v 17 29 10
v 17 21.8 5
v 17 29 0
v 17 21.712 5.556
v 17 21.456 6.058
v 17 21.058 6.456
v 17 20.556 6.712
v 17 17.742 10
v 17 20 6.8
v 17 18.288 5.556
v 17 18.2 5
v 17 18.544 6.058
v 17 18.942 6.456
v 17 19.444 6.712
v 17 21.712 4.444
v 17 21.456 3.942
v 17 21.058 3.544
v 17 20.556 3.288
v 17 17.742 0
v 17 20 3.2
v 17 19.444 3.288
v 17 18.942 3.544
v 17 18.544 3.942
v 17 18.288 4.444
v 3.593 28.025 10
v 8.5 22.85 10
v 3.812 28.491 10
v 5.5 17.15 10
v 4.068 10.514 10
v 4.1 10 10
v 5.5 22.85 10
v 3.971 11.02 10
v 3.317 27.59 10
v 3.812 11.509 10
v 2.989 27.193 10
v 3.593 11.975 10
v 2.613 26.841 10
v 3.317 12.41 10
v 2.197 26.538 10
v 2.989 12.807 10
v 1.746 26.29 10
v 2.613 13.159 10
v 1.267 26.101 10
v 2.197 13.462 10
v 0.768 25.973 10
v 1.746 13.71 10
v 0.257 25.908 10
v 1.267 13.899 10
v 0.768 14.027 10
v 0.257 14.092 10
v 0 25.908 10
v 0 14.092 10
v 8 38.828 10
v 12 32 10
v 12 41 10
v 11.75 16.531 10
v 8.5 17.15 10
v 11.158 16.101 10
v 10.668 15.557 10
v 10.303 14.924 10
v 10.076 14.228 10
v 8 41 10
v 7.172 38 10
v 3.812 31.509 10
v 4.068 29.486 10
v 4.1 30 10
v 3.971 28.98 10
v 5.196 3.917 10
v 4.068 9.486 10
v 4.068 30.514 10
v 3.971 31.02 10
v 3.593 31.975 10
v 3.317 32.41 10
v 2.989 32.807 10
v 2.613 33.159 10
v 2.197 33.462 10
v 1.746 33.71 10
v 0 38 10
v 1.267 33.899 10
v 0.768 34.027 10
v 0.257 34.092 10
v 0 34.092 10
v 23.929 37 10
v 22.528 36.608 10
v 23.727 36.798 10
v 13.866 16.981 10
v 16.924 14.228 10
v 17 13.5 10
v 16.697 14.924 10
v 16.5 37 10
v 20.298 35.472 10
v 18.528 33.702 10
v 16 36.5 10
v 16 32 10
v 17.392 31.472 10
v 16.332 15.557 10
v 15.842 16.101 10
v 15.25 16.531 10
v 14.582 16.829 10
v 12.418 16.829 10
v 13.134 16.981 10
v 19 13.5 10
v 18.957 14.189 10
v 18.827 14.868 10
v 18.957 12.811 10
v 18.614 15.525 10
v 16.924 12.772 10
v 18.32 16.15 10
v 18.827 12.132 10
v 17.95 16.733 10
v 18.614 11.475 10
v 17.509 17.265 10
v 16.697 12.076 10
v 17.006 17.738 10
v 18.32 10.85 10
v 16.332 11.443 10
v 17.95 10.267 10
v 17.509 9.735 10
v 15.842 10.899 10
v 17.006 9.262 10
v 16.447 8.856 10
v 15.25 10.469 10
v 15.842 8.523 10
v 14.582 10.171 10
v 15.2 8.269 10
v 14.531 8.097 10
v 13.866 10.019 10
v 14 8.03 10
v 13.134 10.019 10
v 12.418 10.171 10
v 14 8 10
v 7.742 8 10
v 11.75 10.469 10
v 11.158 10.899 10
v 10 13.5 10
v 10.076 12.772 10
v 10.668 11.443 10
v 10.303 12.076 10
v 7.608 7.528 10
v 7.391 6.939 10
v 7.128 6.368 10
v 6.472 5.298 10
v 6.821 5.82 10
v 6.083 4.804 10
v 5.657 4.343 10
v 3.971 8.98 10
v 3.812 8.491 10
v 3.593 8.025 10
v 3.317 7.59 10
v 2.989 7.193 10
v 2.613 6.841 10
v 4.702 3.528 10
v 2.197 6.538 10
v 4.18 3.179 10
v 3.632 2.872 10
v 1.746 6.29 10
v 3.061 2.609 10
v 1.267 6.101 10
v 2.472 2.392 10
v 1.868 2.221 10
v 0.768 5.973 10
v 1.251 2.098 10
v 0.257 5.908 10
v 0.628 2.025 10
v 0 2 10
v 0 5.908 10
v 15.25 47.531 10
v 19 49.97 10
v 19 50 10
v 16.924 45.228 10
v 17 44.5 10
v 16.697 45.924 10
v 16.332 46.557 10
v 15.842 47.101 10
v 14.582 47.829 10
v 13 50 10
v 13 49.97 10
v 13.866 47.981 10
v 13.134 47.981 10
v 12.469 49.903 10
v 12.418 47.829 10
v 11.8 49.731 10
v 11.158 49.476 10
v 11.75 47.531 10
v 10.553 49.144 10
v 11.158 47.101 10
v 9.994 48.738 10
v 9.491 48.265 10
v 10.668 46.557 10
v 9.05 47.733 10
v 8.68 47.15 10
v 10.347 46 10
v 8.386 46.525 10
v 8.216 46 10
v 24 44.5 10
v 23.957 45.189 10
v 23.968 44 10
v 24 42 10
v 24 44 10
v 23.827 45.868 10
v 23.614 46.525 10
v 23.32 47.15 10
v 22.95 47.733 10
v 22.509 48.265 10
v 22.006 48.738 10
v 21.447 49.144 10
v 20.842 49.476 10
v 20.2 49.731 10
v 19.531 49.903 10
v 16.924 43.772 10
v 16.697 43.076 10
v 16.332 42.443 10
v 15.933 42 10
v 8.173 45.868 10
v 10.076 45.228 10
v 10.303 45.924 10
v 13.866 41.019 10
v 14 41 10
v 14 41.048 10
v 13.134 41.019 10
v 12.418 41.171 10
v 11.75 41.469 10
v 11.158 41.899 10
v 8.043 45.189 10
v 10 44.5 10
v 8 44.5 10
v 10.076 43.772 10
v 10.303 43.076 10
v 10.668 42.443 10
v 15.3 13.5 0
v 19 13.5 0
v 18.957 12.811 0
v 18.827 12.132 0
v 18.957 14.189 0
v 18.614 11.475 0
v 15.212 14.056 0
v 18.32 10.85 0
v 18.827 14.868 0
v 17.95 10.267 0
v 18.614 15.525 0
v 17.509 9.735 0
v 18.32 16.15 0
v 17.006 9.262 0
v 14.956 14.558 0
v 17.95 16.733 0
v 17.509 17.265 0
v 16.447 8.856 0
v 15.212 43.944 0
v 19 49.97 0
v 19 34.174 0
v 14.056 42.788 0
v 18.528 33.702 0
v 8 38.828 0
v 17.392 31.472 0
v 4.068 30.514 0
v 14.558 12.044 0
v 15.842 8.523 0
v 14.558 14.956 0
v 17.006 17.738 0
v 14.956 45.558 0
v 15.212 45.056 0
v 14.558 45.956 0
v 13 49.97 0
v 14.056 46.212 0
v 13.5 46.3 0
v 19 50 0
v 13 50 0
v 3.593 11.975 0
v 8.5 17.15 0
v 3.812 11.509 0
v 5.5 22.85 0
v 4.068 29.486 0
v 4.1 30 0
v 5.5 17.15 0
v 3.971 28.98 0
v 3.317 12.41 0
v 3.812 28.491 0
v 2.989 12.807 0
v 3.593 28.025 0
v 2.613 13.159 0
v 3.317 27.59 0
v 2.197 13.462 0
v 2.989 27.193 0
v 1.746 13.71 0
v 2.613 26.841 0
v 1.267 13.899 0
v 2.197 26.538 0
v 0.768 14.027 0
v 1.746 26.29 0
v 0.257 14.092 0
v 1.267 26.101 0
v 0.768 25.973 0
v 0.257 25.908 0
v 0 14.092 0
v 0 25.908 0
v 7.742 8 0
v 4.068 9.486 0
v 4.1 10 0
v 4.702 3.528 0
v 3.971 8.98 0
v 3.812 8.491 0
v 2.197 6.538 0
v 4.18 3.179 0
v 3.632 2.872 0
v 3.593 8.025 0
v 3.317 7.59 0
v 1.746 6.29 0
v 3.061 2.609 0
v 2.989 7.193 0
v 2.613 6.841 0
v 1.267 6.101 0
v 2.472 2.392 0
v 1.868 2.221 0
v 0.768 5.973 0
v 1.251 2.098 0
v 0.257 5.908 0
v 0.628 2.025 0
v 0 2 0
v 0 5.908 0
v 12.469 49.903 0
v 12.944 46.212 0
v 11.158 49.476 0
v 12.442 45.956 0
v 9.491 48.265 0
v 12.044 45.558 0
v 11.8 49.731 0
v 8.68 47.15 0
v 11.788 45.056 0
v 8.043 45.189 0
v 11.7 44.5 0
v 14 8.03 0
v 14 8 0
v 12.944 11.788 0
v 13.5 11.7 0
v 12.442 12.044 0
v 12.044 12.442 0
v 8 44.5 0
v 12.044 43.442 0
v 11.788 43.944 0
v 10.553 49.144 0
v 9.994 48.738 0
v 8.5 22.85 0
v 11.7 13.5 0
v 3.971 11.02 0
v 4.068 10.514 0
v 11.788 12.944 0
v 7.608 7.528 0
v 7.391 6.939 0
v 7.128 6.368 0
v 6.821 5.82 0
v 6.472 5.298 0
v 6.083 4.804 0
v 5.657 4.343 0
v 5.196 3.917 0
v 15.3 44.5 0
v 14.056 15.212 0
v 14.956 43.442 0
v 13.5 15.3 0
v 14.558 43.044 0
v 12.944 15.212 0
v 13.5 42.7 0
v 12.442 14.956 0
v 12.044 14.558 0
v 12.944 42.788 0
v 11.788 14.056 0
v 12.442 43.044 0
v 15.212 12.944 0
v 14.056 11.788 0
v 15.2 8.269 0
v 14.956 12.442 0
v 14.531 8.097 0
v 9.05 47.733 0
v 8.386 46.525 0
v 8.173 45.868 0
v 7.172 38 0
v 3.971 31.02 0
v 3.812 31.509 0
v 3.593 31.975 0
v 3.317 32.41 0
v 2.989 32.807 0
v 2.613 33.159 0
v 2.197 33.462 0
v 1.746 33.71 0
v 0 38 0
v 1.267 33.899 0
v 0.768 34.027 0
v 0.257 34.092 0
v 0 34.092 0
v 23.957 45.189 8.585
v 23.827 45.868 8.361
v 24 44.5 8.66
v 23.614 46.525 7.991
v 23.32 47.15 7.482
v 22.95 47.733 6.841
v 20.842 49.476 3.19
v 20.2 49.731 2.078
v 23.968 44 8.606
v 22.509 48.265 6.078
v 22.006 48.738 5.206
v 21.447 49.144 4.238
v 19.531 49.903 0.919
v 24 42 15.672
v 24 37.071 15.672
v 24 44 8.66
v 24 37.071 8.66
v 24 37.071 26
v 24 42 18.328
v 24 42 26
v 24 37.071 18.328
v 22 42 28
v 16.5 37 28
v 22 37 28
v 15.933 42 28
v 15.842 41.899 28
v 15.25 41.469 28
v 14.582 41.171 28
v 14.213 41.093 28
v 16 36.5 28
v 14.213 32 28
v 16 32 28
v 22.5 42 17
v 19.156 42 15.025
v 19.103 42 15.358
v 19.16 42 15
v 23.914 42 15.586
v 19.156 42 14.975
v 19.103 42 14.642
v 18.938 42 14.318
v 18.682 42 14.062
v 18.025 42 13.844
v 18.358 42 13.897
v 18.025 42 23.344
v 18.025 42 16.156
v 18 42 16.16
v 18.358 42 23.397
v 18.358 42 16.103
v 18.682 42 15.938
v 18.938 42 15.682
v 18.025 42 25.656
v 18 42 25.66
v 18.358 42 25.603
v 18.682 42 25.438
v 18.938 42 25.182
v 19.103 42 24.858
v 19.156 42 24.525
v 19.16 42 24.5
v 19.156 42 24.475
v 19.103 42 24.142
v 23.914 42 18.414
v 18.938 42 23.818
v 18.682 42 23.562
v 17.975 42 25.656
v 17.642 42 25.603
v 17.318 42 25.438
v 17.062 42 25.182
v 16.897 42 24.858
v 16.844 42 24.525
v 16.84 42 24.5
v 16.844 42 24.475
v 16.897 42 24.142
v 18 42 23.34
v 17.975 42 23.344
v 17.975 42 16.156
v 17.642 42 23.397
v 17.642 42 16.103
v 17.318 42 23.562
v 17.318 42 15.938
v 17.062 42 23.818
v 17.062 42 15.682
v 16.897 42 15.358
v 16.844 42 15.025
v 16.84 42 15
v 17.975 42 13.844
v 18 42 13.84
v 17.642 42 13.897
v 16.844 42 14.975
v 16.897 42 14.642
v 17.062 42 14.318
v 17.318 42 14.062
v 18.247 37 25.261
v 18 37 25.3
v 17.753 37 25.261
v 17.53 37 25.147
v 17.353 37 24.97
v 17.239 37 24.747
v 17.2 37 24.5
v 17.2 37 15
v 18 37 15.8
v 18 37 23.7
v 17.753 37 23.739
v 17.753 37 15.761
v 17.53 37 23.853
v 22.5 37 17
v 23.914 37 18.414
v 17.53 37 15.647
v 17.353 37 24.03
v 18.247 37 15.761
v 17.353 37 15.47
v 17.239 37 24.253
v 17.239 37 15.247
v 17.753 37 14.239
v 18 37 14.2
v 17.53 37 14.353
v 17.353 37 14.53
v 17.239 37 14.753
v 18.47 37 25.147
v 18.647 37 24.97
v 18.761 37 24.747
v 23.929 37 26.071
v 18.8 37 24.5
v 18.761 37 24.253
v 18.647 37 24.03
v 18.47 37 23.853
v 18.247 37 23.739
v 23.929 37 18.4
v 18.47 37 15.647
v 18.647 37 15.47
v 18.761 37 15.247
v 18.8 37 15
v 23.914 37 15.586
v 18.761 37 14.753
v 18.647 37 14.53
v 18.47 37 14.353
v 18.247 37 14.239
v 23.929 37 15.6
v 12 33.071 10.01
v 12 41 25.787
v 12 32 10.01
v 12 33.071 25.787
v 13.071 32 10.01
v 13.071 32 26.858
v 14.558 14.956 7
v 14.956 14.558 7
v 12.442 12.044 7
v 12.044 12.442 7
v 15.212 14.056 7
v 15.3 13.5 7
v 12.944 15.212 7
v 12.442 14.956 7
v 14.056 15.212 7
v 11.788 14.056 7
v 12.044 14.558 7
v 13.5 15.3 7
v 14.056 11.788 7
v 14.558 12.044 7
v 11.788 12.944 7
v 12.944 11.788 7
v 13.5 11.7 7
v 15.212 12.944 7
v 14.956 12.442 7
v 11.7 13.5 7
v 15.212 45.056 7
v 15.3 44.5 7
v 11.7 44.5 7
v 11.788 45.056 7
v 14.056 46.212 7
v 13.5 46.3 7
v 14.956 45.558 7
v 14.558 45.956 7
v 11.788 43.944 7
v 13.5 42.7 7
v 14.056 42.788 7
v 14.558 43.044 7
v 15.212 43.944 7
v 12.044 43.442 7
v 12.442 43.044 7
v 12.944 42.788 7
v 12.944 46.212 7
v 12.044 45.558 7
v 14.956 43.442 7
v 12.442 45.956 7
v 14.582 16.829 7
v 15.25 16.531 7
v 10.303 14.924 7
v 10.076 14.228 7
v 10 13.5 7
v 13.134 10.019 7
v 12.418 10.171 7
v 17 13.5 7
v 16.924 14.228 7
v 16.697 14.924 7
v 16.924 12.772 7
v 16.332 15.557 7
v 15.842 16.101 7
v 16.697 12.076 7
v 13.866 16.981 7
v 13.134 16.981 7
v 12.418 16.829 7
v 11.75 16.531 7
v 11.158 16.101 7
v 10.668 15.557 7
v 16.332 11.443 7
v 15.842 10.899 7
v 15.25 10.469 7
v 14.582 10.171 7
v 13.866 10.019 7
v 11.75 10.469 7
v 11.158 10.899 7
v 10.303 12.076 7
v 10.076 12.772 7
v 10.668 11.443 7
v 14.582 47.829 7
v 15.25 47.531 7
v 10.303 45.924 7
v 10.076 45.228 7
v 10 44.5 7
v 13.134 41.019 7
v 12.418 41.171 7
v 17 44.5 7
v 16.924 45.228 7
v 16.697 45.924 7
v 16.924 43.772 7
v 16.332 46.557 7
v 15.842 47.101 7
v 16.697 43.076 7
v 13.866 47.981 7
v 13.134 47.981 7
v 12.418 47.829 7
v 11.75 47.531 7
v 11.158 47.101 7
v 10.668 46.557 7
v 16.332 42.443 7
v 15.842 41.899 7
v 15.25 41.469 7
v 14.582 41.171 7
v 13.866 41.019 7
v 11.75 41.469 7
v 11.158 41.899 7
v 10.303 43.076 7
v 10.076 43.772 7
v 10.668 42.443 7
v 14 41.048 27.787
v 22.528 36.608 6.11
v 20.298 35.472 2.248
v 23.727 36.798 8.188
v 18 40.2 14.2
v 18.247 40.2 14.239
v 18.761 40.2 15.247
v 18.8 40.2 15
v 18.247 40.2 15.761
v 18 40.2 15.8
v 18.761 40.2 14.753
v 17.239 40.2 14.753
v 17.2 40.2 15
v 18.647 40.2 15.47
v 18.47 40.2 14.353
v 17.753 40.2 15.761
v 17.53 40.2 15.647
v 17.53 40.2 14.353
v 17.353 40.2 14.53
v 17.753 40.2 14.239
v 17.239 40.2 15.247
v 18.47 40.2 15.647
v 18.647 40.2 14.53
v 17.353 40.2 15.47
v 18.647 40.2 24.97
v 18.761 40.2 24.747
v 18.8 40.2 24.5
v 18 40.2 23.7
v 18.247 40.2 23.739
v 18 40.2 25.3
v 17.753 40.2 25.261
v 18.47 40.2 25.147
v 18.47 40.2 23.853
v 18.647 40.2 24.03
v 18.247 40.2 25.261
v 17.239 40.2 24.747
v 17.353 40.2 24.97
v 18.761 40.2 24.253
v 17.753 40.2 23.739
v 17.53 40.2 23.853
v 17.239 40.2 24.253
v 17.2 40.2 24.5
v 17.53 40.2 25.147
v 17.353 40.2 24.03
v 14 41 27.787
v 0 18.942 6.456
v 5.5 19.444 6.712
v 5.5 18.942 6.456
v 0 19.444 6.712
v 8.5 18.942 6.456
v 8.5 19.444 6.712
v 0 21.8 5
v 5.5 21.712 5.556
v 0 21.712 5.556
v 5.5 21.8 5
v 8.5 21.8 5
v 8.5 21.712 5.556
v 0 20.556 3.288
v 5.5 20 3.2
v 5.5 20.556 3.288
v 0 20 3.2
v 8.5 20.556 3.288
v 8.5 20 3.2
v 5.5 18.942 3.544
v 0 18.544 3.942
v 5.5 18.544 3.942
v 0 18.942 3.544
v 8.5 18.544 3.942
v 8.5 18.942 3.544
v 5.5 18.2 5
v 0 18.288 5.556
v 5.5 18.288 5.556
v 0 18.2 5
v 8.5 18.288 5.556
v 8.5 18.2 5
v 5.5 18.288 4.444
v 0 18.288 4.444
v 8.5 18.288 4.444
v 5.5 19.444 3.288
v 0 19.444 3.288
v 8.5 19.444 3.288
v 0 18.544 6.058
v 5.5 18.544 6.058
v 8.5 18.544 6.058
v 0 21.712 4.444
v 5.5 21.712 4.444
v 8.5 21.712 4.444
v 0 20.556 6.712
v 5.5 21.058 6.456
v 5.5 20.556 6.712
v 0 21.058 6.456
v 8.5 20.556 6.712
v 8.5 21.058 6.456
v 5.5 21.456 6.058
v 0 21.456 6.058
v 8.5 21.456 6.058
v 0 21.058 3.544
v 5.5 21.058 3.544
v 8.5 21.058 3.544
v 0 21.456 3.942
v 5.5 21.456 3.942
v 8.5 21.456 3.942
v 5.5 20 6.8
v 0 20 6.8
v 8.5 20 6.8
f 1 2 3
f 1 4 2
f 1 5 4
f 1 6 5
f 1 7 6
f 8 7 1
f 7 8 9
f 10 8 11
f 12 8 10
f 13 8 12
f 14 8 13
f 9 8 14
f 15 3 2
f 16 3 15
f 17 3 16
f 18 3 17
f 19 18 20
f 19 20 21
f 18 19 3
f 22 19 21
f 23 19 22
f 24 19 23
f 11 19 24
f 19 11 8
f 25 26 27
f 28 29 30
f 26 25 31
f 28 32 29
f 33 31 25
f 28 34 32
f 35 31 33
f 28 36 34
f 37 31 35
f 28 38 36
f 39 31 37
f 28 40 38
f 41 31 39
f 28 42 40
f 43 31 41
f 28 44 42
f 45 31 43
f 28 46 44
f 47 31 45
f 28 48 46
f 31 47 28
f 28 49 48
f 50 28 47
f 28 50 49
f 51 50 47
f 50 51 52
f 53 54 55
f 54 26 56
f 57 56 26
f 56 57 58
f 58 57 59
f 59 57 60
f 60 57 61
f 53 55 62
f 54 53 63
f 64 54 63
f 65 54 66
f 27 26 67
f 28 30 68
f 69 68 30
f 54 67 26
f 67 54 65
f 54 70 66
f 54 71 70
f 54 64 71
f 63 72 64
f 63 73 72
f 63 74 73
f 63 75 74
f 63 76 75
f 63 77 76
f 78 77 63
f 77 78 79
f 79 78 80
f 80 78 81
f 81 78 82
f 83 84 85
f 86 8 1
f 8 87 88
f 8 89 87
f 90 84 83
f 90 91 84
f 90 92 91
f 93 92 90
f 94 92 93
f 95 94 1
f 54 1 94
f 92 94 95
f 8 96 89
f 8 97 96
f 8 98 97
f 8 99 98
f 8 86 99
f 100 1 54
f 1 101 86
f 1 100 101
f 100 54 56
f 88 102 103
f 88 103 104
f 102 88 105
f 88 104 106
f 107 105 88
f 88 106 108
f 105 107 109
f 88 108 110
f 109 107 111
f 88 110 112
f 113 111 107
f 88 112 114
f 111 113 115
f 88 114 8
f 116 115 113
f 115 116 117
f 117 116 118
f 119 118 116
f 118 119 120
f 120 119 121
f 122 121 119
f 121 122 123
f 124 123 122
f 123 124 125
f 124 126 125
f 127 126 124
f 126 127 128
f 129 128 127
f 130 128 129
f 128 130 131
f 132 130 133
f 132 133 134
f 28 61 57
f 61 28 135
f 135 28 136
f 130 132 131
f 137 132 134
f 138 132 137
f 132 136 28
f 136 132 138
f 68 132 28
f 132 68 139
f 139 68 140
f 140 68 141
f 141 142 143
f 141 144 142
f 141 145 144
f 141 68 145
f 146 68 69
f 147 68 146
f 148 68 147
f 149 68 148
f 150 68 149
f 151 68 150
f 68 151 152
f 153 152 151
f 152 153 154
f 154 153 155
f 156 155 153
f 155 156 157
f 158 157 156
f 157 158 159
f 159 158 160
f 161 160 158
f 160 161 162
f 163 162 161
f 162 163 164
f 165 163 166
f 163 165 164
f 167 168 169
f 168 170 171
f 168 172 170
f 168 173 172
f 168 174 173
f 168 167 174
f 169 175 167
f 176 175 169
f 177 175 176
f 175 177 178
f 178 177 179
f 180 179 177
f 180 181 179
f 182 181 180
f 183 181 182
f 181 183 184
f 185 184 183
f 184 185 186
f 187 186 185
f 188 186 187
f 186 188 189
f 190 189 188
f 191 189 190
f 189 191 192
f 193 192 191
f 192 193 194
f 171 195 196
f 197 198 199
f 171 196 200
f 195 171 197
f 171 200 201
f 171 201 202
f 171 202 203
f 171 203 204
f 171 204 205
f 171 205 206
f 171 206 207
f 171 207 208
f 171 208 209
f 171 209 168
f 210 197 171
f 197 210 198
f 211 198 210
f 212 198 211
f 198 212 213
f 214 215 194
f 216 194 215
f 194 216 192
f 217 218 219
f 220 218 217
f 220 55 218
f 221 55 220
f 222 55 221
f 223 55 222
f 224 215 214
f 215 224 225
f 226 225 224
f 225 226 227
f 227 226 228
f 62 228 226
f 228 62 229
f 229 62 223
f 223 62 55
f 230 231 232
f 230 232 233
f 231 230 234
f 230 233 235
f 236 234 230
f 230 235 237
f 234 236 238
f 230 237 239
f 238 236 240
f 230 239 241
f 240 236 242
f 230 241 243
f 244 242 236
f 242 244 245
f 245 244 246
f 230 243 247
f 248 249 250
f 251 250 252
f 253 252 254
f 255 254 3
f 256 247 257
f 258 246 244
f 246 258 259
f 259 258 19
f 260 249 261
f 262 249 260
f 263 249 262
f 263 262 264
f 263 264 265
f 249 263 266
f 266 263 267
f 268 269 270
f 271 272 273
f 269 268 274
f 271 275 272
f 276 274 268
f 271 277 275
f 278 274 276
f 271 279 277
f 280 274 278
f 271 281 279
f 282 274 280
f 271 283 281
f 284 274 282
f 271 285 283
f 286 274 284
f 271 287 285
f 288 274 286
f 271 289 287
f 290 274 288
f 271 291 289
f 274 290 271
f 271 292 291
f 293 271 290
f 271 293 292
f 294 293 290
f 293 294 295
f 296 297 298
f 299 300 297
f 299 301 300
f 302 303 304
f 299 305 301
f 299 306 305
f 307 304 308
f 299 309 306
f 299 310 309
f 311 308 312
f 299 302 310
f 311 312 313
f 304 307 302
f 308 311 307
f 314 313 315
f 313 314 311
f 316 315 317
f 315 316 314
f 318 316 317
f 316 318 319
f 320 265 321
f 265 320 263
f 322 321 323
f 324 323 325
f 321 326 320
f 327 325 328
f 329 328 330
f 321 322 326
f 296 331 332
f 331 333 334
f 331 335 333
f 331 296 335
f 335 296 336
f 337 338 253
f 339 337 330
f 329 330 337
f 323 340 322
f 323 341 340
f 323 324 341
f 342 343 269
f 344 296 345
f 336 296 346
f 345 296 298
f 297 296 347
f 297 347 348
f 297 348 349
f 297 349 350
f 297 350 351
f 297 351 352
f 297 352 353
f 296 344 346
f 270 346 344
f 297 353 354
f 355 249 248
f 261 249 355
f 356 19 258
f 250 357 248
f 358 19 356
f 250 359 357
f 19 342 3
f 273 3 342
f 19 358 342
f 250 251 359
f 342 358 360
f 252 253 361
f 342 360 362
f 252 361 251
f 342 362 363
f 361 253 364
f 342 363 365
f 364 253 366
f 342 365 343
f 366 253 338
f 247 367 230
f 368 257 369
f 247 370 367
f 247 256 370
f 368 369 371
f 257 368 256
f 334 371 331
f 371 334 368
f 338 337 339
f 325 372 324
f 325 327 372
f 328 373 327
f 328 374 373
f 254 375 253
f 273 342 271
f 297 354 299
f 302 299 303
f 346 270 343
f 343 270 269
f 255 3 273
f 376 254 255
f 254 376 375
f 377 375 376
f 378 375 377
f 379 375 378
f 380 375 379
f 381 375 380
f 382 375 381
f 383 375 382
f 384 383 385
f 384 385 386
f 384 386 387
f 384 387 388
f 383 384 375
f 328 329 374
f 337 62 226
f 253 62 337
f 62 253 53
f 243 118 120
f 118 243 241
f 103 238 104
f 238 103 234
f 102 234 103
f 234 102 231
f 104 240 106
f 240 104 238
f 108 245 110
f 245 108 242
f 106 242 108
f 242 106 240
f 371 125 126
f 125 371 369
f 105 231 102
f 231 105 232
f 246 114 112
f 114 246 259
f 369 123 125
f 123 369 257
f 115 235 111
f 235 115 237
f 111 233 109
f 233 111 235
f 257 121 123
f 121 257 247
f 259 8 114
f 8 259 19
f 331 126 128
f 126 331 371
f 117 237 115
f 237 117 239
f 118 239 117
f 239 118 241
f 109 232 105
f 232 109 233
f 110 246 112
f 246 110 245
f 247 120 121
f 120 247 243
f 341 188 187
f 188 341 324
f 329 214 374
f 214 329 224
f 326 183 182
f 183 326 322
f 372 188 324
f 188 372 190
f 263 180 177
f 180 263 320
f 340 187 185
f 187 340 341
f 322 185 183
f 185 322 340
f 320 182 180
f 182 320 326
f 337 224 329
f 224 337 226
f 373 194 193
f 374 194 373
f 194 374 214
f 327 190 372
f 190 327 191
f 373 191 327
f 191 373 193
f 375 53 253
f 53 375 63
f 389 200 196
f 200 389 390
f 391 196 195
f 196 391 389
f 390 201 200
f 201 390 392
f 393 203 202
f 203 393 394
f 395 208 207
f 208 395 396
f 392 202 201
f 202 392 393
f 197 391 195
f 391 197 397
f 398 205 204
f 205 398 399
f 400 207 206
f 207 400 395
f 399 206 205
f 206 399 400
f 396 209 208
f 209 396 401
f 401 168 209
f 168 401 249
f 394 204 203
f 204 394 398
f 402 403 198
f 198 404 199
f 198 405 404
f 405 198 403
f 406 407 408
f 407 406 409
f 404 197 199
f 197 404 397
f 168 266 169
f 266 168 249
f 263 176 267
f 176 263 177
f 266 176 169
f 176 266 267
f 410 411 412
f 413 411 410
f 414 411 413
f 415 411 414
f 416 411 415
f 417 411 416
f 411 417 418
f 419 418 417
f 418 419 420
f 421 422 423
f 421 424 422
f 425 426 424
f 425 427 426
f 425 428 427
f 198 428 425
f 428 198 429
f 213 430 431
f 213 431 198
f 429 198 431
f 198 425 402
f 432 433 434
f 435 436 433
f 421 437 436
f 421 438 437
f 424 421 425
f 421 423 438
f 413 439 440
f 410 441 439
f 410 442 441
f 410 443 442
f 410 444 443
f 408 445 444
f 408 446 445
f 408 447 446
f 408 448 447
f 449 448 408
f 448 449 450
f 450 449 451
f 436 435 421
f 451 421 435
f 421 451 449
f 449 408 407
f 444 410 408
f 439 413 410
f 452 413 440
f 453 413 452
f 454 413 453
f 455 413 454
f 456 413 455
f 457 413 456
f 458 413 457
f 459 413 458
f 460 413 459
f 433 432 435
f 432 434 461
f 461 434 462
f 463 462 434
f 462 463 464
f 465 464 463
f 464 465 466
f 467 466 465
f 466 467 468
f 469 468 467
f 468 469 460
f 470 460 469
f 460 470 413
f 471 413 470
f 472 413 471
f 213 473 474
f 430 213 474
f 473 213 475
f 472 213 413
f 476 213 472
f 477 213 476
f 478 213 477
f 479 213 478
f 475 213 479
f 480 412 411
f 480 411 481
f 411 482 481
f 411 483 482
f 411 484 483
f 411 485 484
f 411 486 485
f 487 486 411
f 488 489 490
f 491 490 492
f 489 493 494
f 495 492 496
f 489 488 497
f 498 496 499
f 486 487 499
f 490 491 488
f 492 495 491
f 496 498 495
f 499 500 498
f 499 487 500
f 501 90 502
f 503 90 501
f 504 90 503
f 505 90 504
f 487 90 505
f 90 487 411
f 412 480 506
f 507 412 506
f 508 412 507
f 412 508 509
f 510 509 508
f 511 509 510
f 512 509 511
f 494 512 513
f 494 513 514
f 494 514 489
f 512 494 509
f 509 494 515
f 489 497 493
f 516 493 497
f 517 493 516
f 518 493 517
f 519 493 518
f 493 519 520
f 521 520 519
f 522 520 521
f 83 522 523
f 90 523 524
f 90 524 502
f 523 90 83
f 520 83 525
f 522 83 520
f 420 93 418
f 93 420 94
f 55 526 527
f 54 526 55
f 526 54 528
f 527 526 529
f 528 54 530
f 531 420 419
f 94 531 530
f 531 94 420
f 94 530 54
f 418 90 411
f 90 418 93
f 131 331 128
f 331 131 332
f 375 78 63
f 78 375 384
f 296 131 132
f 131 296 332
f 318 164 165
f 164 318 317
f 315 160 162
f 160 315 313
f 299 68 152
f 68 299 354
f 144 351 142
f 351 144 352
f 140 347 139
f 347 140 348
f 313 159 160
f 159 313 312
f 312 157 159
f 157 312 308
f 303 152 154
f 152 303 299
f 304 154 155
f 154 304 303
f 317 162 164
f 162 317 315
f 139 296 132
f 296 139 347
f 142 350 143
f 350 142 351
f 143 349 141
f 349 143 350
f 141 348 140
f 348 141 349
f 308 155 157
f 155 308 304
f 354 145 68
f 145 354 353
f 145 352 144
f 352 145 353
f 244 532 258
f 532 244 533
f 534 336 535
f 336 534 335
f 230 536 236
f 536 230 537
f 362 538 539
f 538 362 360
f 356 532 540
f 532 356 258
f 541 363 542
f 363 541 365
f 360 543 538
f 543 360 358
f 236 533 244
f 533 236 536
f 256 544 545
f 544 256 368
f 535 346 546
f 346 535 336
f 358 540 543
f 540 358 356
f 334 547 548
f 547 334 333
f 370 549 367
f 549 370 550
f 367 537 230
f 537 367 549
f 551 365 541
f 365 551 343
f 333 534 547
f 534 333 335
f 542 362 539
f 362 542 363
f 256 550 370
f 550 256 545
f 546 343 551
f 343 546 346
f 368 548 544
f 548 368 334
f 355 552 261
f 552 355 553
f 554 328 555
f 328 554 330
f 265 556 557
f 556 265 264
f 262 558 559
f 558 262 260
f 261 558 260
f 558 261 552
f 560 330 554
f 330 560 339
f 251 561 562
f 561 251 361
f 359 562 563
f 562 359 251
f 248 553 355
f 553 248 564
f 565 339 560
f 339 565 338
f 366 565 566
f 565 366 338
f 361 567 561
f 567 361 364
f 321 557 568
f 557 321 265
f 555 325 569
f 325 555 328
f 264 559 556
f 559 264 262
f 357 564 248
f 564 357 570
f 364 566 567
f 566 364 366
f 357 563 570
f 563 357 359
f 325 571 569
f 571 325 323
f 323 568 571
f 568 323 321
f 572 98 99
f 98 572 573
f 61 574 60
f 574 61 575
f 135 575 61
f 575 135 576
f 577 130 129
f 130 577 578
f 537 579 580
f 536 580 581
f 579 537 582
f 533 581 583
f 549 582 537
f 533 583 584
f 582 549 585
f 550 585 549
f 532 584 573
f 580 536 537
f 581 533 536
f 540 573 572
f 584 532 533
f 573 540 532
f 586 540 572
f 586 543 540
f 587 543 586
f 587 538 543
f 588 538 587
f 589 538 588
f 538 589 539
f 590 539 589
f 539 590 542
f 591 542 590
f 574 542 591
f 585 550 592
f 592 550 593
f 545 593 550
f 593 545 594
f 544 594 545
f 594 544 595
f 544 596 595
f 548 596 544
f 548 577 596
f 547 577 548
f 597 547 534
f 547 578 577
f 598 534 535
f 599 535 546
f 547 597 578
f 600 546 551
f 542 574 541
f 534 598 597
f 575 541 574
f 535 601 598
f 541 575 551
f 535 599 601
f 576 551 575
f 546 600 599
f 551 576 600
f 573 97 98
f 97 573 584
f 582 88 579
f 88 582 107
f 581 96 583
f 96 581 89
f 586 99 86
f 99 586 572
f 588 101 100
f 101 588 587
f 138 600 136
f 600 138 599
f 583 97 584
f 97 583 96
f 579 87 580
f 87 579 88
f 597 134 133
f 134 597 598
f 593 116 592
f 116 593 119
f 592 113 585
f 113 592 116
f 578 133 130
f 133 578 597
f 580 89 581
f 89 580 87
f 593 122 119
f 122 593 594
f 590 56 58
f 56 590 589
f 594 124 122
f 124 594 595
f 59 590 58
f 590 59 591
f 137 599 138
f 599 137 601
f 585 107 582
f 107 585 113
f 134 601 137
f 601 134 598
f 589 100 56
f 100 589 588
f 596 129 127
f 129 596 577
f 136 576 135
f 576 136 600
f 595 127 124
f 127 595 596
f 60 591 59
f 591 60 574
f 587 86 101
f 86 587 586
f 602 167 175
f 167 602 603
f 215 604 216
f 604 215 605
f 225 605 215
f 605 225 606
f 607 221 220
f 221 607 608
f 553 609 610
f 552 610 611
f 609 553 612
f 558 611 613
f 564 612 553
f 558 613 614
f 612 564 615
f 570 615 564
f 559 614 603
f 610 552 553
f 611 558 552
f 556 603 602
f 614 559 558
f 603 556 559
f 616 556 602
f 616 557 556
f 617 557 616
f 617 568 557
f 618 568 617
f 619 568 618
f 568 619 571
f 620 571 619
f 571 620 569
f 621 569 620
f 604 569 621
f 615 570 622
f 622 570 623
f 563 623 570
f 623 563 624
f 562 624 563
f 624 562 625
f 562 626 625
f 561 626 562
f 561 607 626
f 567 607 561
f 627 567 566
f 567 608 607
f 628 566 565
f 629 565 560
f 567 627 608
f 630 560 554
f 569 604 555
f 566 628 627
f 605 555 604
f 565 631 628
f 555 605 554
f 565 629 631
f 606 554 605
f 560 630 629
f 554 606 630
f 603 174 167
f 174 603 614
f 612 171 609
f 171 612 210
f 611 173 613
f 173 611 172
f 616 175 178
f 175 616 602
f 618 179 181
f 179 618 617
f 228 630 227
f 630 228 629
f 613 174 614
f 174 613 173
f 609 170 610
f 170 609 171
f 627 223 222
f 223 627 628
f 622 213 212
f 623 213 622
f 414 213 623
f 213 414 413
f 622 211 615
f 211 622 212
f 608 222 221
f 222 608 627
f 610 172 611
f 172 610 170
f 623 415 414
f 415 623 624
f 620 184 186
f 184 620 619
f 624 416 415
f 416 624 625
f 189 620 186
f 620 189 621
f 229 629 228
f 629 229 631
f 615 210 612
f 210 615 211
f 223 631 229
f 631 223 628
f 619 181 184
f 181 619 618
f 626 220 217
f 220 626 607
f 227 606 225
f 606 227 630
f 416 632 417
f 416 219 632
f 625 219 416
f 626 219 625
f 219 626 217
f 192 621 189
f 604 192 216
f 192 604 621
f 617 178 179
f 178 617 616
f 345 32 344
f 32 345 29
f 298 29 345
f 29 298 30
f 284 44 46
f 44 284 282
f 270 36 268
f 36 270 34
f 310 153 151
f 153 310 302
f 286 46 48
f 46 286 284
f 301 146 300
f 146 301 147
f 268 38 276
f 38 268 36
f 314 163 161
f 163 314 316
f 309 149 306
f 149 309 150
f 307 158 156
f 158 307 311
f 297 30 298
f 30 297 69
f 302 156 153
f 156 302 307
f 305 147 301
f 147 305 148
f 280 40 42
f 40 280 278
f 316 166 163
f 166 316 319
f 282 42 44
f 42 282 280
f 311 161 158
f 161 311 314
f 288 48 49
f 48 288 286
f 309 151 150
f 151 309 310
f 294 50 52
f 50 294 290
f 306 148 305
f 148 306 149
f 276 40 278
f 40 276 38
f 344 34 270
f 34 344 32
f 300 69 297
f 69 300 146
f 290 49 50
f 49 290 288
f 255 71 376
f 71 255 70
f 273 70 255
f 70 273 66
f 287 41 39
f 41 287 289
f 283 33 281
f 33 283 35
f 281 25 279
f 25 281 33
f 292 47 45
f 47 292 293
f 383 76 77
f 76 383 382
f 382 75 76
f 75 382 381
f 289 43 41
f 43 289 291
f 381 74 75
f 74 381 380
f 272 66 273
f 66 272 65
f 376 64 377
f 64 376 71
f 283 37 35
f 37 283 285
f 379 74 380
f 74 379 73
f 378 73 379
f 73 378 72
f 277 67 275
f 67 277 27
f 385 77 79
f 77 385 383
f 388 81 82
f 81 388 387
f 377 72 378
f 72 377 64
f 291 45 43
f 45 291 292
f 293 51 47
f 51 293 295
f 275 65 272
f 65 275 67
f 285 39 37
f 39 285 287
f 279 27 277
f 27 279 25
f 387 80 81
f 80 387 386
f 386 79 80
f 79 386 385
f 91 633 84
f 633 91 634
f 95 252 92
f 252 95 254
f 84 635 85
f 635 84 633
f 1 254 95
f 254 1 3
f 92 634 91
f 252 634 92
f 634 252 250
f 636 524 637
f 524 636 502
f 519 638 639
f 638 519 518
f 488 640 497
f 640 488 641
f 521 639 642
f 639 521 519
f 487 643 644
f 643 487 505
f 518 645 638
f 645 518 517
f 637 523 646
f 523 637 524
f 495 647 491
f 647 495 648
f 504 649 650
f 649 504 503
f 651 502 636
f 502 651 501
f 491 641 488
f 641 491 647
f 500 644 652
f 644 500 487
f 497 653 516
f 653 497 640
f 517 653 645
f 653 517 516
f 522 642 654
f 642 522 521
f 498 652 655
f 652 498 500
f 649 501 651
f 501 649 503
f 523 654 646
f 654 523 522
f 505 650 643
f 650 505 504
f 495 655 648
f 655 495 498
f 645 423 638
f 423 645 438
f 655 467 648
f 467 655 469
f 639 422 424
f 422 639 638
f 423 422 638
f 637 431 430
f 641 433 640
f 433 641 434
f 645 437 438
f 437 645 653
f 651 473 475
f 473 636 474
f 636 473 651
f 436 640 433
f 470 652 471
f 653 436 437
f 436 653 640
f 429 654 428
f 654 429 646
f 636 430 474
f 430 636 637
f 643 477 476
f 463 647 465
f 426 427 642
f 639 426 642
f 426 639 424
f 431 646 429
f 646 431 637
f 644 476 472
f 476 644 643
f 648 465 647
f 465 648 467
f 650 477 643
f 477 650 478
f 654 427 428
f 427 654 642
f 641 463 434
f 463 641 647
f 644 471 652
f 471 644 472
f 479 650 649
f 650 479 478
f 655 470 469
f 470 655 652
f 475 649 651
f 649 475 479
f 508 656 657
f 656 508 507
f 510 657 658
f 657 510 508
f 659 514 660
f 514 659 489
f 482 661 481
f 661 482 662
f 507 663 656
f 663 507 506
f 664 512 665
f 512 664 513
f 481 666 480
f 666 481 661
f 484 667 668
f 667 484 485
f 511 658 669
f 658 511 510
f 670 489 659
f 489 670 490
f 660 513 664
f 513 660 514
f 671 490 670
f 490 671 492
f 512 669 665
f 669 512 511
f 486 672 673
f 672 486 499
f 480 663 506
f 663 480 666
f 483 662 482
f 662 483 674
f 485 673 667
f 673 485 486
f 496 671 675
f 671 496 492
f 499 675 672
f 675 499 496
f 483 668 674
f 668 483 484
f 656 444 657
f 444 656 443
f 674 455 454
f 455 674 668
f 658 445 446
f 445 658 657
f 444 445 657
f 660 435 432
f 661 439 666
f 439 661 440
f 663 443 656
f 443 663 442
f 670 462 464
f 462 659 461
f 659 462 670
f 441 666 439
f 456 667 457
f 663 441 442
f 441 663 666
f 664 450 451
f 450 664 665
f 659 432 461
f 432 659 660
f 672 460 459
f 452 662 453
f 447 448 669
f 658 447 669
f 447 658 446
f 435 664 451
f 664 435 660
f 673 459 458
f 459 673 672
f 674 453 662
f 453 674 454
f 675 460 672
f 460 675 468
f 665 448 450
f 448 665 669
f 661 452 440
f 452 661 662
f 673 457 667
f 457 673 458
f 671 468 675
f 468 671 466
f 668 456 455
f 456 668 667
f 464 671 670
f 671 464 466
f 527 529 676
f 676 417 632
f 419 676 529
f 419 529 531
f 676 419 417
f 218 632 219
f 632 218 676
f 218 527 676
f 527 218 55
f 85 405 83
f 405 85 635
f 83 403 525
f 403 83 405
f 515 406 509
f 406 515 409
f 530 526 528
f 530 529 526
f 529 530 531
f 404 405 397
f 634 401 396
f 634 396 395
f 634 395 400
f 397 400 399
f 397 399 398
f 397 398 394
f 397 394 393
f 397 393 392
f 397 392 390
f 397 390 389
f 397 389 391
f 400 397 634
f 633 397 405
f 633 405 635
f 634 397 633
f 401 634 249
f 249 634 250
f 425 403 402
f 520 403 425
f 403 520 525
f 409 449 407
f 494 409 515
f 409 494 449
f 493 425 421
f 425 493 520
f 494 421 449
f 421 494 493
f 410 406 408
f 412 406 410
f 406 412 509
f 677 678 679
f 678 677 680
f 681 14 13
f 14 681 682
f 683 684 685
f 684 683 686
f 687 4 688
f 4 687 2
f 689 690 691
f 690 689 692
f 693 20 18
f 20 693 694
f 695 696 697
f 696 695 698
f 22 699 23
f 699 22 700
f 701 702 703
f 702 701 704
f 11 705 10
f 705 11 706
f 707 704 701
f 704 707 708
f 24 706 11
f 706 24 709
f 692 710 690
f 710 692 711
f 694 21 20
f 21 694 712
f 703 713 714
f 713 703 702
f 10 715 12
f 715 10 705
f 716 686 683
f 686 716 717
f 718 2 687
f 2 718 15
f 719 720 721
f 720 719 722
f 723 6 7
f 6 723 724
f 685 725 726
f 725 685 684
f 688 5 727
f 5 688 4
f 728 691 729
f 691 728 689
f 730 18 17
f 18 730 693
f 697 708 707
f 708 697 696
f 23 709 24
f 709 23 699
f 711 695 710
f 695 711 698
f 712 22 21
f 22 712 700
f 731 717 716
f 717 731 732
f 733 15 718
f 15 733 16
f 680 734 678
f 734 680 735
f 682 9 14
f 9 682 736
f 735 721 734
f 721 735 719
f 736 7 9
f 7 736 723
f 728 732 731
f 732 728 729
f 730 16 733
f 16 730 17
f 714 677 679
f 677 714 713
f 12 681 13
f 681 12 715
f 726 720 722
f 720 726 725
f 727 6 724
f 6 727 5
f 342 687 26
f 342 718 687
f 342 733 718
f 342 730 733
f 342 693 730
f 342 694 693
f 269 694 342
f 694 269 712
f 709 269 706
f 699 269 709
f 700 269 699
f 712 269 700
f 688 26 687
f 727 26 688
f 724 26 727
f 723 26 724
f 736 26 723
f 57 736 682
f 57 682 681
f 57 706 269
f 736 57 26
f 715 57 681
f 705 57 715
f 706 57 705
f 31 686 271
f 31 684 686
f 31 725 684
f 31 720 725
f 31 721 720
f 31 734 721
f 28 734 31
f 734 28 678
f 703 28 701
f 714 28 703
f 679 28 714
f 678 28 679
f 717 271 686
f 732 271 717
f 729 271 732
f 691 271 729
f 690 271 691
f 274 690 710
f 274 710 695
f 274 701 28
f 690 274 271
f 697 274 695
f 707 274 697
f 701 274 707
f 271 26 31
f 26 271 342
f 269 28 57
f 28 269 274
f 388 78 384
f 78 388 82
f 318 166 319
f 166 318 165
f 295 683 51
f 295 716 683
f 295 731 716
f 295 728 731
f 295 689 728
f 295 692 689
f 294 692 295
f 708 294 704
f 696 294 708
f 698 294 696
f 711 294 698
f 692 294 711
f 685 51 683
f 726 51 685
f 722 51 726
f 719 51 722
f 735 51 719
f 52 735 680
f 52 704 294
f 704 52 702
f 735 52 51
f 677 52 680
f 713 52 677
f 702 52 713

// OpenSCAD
// file: y-motor.scad
// PRUSA iteration3
// Y motor mount
// GNU GPL v3
// Josef Průša <iam@josefprusa.cz> and contributors
// http://www.reprap.org/wiki/Prusa_Mendel
// http://prusamendel.org

//include <configuration.scad>

thickness = 10;

module y_motor_base(){
    // Motor holding part
    translate(v = [29,-21+50,0]){
        translate(v = [-21+4.5,0,5]) cube(size = [9,31,thickness], center=true);
        translate(v = [-15.5,-15.5,0]) cylinder(h = thickness, r=5.5, $fn=50);
        translate(v = [-15.5,+15.5,0]) cylinder(h = thickness, r=5.5, $fn=50);
        translate([-21,7,0]) rotate([0,0,45]) cube([2, 2, thickness]);

        //end stop
        translate(v = [-10.5,+15.5,0]) cylinder(h = thickness, r=5.5, $fn=50);
        translate([-12,0,0]) cube([7, 15, thickness]);
        translate([-16,16,0]) cube([6, 5, thickness]);
        translate([-21+6,8,0]) cube([12-2, 5, 28]);
        translate([-21+6-2,8-5,0]) cube([4, 10, 28]);
        translate([-21+9.5-2,7,0]) rotate([0,0,45]) cube([2, 2, 28]);
        // Joins motor holder and rod plate
        translate(v = [-29,-21,0]) cube(size = [14,30,thickness]);
    }
    // Front holding part
    translate(v = [0,10,0]) cylinder(h = thickness, r=8, $fn=80);
    translate(v = [0,20,5])cube(size = [16,20,thickness], center=true);
    translate(v = [0,30,0])cylinder(h = thickness, r=8, $fn=80);
}

module y_motor_holes(){
    translate(v = [29,-21+50,0]){
        // Stepper screw holes
        translate(v = [-15.5,-15.5,-1]) cylinder(h = thickness, r=1.8, $fn=20);
        translate(v = [-15.5,+15.5,-1]) cylinder(h = thickness, r=1.8, $fn=20);
        // Stepper screw head holes
        translate(v = [-15.5,-15.5,7]) cylinder(h = 7, r=3.5, $fn=30);
        translate(v = [-15.5,+15.5,7]) cylinder(h = 25, r=3.5, $fn=30);
    }

    // Threaded rod holes
    translate(v = [0,10,-1]) cylinder(h = 12, r=4.1, $fn=50);
    translate(v = [0,30,-1]) cylinder(h = 12, r=4.1, $fn=50);

    // endstop
    translate([25,29,0])  cylinder(h = 29, r=8, $fn=20);

    translate([18,45,15]) rotate([90,0,0]) cylinder(h = 10, r=0.8, $fn=20);
    translate([18,42.2,15]) rotate([90,0,0]) cylinder(h = 2, r1=1.2, r2=0.8, $fn=20);

    translate([18,45,24.5]) rotate([90,0,0]) cylinder(h = 10, r=0.8, $fn=20);
    translate([18,42.2,24.5]) rotate([90,0,0]) cylinder(h = 2, r1=1.2, r2=0.8, $fn=20);

    // endstop corner cutout
    translate([-5-2,30,28]) rotate([0,45,0]) cube([15, 19, 15]);
    translate([-1,41,10])  cube([15, 5, 19]);
    translate([27,33,0]) rotate([0,0,45]) cube([5, 5, 28]);
    translate([12-2,28,10.01]) rotate([0,0,45]) cube([5, 5, 28]);

    translate([19,32,0]) rotate([0,30,0]) cube([8, 20, 18]);
    translate([24.5-2,32,17]) rotate([0,45,0]) cube([2, 20, 2]);

    translate([23-2,32,29]) rotate([0,45,0]) cube([5, 20, 5]);

    // Screw hole to join halves
    translate(v = [-10,+20,thickness/2]) rotate([0, 90, 0]) cylinder(h = 30, r=1.8, $fn=20);
    // Screw head hole to join halves
    translate(v = [-10,+20,thickness/2]) rotate([0, 90, 0]) cylinder(h = 5, r=3.5, $fn=30);
    // Nut slot to join halves
    translate(v = [7, 20, thickness/2]) cube([3, 5.7, thickness+2], center=true);
}

// Final part
module y_motor(){
    difference(){
        y_motor_base();
        y_motor_holes();
    }
}
// main file
include <y-motor.scad>

module y_motor_front() {
    difference() {
        y_motor();
        translate([-100,0,-1]) cube([100,100,100]);
    }
}

y_motor_front();
